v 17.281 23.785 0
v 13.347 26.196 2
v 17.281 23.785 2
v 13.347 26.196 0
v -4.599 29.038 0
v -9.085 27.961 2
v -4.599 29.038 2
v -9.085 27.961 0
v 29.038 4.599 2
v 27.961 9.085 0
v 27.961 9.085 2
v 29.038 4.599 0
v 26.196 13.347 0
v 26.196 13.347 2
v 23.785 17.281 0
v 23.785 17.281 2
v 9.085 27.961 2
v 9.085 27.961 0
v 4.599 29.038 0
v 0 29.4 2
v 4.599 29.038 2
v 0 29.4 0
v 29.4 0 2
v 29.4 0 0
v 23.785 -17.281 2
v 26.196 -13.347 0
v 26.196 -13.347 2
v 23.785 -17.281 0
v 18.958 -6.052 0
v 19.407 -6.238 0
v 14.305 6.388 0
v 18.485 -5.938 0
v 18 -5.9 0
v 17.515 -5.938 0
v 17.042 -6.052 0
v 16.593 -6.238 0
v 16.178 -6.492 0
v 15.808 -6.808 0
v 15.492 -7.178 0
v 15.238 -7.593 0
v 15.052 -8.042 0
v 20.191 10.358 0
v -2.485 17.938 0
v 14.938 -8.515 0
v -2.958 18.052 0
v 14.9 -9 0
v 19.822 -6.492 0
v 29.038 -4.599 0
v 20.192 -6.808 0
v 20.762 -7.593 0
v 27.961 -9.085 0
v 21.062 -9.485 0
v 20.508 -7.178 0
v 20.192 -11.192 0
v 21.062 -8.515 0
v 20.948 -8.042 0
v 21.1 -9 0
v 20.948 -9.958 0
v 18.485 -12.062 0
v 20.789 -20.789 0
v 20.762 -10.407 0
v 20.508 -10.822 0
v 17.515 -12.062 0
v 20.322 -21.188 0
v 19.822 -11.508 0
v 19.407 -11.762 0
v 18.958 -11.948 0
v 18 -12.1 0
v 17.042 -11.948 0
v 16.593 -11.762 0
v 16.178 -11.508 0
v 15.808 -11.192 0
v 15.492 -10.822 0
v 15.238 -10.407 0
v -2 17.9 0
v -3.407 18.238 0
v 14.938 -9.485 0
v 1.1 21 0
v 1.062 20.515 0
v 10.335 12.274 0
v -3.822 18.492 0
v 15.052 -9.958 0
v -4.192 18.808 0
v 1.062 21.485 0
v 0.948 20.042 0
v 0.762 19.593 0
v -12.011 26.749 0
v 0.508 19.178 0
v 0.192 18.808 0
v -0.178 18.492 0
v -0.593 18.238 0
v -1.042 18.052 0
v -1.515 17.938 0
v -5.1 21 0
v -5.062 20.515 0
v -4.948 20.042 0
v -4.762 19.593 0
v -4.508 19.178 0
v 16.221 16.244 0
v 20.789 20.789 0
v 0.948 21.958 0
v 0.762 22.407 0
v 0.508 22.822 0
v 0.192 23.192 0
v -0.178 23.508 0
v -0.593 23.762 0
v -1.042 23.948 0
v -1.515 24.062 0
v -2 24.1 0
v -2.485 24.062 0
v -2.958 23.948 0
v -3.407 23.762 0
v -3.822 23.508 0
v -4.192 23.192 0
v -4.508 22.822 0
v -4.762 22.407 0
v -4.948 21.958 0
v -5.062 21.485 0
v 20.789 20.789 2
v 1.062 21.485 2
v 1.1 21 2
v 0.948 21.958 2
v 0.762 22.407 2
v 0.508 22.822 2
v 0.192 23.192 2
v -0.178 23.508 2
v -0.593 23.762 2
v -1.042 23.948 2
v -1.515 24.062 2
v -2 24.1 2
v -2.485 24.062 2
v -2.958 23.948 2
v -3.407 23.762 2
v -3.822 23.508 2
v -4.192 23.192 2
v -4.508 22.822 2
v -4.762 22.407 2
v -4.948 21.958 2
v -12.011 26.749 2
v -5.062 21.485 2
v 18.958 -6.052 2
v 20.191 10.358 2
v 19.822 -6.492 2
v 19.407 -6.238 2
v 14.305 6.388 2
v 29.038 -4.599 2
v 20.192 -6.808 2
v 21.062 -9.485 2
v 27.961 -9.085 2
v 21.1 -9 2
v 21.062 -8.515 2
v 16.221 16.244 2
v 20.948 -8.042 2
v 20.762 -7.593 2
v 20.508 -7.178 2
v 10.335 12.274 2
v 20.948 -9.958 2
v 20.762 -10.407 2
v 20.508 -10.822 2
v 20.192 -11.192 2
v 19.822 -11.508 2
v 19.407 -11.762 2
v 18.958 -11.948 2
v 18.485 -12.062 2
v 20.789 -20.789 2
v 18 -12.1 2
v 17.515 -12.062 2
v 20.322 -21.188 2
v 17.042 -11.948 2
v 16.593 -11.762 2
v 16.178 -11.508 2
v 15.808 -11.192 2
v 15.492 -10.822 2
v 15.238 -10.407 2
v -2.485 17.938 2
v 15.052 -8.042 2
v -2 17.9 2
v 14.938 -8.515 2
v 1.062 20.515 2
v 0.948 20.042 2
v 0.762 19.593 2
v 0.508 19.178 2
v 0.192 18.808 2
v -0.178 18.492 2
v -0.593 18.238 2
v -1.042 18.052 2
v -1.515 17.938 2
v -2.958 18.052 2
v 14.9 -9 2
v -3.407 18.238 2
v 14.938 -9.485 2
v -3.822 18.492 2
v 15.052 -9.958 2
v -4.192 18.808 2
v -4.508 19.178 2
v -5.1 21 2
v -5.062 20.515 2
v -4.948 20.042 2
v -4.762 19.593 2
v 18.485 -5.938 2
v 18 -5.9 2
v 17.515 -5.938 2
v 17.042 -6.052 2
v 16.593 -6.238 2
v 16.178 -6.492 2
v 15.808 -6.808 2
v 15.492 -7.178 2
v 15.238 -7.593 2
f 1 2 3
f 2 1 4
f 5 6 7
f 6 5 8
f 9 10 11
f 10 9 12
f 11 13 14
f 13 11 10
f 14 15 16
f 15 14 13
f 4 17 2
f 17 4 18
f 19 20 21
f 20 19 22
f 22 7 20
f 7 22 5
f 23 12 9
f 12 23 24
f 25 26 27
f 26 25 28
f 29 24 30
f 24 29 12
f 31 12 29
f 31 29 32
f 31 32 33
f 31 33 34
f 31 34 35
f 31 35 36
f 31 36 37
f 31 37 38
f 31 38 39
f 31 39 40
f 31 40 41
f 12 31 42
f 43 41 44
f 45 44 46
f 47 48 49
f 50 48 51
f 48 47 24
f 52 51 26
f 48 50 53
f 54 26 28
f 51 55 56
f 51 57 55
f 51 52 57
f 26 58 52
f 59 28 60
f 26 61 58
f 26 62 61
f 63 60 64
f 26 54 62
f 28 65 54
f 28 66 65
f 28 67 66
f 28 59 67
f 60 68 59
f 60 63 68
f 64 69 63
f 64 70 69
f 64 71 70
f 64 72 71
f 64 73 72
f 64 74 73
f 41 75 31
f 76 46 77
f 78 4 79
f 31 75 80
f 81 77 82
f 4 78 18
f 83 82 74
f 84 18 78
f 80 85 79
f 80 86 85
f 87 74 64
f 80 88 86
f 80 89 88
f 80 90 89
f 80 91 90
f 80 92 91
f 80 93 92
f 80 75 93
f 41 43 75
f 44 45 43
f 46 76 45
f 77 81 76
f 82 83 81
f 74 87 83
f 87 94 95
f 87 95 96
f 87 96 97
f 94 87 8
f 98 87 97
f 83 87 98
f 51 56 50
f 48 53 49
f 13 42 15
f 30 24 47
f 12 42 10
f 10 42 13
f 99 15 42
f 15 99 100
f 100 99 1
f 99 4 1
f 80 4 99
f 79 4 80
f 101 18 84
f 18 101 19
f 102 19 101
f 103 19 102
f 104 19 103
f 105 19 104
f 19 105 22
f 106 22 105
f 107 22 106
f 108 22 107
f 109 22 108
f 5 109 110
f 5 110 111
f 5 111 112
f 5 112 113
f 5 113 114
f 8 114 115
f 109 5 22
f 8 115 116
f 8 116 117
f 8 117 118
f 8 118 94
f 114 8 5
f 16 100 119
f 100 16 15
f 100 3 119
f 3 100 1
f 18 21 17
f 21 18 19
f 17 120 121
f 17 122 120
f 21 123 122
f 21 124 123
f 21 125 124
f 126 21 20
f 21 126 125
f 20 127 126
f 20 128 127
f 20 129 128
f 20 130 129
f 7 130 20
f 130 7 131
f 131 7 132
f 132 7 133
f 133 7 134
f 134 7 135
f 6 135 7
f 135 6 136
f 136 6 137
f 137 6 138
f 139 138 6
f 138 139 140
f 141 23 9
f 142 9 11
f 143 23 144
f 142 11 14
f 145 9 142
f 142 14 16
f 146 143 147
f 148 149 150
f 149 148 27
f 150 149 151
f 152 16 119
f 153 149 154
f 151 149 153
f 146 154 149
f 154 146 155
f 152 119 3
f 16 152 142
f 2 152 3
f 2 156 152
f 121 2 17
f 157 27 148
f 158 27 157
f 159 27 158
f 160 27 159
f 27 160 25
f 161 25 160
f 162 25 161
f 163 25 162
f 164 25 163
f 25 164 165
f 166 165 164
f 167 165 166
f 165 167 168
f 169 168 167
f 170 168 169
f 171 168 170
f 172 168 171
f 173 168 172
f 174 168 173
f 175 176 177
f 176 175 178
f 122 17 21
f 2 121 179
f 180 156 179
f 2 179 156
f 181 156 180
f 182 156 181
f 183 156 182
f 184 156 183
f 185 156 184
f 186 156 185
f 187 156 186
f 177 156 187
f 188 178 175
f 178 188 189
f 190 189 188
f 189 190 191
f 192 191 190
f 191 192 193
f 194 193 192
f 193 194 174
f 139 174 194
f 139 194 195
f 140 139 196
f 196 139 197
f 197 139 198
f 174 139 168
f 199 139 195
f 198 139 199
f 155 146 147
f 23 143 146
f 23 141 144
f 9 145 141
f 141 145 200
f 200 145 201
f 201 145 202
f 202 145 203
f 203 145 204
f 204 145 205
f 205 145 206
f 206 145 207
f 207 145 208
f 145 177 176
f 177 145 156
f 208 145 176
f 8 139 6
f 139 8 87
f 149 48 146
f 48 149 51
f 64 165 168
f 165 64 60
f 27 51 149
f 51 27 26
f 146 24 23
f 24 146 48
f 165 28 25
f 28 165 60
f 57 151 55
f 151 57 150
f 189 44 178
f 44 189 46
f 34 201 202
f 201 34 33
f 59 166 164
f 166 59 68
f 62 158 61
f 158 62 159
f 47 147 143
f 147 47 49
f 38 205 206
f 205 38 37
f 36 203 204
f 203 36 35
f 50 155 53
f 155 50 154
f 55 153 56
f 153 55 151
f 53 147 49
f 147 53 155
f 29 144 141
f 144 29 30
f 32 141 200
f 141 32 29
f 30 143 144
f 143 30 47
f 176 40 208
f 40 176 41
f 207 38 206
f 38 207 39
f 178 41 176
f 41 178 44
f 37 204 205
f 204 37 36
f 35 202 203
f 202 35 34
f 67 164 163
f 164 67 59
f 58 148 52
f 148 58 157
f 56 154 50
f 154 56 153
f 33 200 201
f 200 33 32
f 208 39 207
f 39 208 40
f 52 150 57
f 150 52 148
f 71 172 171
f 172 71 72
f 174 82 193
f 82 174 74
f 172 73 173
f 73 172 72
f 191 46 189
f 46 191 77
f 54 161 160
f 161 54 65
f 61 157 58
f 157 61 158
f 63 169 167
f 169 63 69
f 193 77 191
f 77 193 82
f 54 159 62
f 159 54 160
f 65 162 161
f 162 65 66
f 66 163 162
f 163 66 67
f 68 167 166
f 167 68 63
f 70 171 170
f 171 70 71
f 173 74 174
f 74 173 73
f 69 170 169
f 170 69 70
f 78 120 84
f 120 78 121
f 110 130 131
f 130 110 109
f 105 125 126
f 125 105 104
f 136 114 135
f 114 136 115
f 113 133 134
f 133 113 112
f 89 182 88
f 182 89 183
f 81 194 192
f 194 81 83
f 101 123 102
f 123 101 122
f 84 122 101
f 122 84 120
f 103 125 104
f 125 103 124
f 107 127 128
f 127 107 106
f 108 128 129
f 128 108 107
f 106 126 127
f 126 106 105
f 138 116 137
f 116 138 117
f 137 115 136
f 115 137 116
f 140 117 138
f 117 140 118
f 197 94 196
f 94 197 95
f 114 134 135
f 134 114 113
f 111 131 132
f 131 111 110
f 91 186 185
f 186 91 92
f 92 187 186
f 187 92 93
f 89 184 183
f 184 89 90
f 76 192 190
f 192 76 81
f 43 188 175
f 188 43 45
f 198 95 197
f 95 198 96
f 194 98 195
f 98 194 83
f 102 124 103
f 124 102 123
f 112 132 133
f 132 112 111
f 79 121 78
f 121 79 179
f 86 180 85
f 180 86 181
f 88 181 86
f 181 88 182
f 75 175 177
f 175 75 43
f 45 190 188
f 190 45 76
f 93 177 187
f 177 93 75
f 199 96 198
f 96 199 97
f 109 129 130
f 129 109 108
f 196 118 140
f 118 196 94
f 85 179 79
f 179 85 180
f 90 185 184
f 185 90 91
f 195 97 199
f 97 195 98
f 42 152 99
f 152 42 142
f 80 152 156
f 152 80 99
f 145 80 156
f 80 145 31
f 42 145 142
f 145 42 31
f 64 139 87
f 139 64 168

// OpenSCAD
difference() {
translate([0,0,1]) cylinder(r=29.4,h=2,center=true); //face
%translate([17.5,8,0]) cylinder(r=9,h=5,center=true); //dial
%translate([17.5,8,0]) cylinder(r=6.5,h=6,center=true); //innerdial
translate([18,-9,0]) cylinder(r=3.1,h=10,center=true); //pin
translate([-2,21,0]) cylinder(r=3.1,h=10,center=true); //pin
#translate([17.5,8,0]) rotate(34) translate([0,4,0]) cube([7.1,7.1,10],center=true); //CNY70
rotate(34) translate([-20,0,0])cube([50,100,10],center=true);
}
$fn=40;
